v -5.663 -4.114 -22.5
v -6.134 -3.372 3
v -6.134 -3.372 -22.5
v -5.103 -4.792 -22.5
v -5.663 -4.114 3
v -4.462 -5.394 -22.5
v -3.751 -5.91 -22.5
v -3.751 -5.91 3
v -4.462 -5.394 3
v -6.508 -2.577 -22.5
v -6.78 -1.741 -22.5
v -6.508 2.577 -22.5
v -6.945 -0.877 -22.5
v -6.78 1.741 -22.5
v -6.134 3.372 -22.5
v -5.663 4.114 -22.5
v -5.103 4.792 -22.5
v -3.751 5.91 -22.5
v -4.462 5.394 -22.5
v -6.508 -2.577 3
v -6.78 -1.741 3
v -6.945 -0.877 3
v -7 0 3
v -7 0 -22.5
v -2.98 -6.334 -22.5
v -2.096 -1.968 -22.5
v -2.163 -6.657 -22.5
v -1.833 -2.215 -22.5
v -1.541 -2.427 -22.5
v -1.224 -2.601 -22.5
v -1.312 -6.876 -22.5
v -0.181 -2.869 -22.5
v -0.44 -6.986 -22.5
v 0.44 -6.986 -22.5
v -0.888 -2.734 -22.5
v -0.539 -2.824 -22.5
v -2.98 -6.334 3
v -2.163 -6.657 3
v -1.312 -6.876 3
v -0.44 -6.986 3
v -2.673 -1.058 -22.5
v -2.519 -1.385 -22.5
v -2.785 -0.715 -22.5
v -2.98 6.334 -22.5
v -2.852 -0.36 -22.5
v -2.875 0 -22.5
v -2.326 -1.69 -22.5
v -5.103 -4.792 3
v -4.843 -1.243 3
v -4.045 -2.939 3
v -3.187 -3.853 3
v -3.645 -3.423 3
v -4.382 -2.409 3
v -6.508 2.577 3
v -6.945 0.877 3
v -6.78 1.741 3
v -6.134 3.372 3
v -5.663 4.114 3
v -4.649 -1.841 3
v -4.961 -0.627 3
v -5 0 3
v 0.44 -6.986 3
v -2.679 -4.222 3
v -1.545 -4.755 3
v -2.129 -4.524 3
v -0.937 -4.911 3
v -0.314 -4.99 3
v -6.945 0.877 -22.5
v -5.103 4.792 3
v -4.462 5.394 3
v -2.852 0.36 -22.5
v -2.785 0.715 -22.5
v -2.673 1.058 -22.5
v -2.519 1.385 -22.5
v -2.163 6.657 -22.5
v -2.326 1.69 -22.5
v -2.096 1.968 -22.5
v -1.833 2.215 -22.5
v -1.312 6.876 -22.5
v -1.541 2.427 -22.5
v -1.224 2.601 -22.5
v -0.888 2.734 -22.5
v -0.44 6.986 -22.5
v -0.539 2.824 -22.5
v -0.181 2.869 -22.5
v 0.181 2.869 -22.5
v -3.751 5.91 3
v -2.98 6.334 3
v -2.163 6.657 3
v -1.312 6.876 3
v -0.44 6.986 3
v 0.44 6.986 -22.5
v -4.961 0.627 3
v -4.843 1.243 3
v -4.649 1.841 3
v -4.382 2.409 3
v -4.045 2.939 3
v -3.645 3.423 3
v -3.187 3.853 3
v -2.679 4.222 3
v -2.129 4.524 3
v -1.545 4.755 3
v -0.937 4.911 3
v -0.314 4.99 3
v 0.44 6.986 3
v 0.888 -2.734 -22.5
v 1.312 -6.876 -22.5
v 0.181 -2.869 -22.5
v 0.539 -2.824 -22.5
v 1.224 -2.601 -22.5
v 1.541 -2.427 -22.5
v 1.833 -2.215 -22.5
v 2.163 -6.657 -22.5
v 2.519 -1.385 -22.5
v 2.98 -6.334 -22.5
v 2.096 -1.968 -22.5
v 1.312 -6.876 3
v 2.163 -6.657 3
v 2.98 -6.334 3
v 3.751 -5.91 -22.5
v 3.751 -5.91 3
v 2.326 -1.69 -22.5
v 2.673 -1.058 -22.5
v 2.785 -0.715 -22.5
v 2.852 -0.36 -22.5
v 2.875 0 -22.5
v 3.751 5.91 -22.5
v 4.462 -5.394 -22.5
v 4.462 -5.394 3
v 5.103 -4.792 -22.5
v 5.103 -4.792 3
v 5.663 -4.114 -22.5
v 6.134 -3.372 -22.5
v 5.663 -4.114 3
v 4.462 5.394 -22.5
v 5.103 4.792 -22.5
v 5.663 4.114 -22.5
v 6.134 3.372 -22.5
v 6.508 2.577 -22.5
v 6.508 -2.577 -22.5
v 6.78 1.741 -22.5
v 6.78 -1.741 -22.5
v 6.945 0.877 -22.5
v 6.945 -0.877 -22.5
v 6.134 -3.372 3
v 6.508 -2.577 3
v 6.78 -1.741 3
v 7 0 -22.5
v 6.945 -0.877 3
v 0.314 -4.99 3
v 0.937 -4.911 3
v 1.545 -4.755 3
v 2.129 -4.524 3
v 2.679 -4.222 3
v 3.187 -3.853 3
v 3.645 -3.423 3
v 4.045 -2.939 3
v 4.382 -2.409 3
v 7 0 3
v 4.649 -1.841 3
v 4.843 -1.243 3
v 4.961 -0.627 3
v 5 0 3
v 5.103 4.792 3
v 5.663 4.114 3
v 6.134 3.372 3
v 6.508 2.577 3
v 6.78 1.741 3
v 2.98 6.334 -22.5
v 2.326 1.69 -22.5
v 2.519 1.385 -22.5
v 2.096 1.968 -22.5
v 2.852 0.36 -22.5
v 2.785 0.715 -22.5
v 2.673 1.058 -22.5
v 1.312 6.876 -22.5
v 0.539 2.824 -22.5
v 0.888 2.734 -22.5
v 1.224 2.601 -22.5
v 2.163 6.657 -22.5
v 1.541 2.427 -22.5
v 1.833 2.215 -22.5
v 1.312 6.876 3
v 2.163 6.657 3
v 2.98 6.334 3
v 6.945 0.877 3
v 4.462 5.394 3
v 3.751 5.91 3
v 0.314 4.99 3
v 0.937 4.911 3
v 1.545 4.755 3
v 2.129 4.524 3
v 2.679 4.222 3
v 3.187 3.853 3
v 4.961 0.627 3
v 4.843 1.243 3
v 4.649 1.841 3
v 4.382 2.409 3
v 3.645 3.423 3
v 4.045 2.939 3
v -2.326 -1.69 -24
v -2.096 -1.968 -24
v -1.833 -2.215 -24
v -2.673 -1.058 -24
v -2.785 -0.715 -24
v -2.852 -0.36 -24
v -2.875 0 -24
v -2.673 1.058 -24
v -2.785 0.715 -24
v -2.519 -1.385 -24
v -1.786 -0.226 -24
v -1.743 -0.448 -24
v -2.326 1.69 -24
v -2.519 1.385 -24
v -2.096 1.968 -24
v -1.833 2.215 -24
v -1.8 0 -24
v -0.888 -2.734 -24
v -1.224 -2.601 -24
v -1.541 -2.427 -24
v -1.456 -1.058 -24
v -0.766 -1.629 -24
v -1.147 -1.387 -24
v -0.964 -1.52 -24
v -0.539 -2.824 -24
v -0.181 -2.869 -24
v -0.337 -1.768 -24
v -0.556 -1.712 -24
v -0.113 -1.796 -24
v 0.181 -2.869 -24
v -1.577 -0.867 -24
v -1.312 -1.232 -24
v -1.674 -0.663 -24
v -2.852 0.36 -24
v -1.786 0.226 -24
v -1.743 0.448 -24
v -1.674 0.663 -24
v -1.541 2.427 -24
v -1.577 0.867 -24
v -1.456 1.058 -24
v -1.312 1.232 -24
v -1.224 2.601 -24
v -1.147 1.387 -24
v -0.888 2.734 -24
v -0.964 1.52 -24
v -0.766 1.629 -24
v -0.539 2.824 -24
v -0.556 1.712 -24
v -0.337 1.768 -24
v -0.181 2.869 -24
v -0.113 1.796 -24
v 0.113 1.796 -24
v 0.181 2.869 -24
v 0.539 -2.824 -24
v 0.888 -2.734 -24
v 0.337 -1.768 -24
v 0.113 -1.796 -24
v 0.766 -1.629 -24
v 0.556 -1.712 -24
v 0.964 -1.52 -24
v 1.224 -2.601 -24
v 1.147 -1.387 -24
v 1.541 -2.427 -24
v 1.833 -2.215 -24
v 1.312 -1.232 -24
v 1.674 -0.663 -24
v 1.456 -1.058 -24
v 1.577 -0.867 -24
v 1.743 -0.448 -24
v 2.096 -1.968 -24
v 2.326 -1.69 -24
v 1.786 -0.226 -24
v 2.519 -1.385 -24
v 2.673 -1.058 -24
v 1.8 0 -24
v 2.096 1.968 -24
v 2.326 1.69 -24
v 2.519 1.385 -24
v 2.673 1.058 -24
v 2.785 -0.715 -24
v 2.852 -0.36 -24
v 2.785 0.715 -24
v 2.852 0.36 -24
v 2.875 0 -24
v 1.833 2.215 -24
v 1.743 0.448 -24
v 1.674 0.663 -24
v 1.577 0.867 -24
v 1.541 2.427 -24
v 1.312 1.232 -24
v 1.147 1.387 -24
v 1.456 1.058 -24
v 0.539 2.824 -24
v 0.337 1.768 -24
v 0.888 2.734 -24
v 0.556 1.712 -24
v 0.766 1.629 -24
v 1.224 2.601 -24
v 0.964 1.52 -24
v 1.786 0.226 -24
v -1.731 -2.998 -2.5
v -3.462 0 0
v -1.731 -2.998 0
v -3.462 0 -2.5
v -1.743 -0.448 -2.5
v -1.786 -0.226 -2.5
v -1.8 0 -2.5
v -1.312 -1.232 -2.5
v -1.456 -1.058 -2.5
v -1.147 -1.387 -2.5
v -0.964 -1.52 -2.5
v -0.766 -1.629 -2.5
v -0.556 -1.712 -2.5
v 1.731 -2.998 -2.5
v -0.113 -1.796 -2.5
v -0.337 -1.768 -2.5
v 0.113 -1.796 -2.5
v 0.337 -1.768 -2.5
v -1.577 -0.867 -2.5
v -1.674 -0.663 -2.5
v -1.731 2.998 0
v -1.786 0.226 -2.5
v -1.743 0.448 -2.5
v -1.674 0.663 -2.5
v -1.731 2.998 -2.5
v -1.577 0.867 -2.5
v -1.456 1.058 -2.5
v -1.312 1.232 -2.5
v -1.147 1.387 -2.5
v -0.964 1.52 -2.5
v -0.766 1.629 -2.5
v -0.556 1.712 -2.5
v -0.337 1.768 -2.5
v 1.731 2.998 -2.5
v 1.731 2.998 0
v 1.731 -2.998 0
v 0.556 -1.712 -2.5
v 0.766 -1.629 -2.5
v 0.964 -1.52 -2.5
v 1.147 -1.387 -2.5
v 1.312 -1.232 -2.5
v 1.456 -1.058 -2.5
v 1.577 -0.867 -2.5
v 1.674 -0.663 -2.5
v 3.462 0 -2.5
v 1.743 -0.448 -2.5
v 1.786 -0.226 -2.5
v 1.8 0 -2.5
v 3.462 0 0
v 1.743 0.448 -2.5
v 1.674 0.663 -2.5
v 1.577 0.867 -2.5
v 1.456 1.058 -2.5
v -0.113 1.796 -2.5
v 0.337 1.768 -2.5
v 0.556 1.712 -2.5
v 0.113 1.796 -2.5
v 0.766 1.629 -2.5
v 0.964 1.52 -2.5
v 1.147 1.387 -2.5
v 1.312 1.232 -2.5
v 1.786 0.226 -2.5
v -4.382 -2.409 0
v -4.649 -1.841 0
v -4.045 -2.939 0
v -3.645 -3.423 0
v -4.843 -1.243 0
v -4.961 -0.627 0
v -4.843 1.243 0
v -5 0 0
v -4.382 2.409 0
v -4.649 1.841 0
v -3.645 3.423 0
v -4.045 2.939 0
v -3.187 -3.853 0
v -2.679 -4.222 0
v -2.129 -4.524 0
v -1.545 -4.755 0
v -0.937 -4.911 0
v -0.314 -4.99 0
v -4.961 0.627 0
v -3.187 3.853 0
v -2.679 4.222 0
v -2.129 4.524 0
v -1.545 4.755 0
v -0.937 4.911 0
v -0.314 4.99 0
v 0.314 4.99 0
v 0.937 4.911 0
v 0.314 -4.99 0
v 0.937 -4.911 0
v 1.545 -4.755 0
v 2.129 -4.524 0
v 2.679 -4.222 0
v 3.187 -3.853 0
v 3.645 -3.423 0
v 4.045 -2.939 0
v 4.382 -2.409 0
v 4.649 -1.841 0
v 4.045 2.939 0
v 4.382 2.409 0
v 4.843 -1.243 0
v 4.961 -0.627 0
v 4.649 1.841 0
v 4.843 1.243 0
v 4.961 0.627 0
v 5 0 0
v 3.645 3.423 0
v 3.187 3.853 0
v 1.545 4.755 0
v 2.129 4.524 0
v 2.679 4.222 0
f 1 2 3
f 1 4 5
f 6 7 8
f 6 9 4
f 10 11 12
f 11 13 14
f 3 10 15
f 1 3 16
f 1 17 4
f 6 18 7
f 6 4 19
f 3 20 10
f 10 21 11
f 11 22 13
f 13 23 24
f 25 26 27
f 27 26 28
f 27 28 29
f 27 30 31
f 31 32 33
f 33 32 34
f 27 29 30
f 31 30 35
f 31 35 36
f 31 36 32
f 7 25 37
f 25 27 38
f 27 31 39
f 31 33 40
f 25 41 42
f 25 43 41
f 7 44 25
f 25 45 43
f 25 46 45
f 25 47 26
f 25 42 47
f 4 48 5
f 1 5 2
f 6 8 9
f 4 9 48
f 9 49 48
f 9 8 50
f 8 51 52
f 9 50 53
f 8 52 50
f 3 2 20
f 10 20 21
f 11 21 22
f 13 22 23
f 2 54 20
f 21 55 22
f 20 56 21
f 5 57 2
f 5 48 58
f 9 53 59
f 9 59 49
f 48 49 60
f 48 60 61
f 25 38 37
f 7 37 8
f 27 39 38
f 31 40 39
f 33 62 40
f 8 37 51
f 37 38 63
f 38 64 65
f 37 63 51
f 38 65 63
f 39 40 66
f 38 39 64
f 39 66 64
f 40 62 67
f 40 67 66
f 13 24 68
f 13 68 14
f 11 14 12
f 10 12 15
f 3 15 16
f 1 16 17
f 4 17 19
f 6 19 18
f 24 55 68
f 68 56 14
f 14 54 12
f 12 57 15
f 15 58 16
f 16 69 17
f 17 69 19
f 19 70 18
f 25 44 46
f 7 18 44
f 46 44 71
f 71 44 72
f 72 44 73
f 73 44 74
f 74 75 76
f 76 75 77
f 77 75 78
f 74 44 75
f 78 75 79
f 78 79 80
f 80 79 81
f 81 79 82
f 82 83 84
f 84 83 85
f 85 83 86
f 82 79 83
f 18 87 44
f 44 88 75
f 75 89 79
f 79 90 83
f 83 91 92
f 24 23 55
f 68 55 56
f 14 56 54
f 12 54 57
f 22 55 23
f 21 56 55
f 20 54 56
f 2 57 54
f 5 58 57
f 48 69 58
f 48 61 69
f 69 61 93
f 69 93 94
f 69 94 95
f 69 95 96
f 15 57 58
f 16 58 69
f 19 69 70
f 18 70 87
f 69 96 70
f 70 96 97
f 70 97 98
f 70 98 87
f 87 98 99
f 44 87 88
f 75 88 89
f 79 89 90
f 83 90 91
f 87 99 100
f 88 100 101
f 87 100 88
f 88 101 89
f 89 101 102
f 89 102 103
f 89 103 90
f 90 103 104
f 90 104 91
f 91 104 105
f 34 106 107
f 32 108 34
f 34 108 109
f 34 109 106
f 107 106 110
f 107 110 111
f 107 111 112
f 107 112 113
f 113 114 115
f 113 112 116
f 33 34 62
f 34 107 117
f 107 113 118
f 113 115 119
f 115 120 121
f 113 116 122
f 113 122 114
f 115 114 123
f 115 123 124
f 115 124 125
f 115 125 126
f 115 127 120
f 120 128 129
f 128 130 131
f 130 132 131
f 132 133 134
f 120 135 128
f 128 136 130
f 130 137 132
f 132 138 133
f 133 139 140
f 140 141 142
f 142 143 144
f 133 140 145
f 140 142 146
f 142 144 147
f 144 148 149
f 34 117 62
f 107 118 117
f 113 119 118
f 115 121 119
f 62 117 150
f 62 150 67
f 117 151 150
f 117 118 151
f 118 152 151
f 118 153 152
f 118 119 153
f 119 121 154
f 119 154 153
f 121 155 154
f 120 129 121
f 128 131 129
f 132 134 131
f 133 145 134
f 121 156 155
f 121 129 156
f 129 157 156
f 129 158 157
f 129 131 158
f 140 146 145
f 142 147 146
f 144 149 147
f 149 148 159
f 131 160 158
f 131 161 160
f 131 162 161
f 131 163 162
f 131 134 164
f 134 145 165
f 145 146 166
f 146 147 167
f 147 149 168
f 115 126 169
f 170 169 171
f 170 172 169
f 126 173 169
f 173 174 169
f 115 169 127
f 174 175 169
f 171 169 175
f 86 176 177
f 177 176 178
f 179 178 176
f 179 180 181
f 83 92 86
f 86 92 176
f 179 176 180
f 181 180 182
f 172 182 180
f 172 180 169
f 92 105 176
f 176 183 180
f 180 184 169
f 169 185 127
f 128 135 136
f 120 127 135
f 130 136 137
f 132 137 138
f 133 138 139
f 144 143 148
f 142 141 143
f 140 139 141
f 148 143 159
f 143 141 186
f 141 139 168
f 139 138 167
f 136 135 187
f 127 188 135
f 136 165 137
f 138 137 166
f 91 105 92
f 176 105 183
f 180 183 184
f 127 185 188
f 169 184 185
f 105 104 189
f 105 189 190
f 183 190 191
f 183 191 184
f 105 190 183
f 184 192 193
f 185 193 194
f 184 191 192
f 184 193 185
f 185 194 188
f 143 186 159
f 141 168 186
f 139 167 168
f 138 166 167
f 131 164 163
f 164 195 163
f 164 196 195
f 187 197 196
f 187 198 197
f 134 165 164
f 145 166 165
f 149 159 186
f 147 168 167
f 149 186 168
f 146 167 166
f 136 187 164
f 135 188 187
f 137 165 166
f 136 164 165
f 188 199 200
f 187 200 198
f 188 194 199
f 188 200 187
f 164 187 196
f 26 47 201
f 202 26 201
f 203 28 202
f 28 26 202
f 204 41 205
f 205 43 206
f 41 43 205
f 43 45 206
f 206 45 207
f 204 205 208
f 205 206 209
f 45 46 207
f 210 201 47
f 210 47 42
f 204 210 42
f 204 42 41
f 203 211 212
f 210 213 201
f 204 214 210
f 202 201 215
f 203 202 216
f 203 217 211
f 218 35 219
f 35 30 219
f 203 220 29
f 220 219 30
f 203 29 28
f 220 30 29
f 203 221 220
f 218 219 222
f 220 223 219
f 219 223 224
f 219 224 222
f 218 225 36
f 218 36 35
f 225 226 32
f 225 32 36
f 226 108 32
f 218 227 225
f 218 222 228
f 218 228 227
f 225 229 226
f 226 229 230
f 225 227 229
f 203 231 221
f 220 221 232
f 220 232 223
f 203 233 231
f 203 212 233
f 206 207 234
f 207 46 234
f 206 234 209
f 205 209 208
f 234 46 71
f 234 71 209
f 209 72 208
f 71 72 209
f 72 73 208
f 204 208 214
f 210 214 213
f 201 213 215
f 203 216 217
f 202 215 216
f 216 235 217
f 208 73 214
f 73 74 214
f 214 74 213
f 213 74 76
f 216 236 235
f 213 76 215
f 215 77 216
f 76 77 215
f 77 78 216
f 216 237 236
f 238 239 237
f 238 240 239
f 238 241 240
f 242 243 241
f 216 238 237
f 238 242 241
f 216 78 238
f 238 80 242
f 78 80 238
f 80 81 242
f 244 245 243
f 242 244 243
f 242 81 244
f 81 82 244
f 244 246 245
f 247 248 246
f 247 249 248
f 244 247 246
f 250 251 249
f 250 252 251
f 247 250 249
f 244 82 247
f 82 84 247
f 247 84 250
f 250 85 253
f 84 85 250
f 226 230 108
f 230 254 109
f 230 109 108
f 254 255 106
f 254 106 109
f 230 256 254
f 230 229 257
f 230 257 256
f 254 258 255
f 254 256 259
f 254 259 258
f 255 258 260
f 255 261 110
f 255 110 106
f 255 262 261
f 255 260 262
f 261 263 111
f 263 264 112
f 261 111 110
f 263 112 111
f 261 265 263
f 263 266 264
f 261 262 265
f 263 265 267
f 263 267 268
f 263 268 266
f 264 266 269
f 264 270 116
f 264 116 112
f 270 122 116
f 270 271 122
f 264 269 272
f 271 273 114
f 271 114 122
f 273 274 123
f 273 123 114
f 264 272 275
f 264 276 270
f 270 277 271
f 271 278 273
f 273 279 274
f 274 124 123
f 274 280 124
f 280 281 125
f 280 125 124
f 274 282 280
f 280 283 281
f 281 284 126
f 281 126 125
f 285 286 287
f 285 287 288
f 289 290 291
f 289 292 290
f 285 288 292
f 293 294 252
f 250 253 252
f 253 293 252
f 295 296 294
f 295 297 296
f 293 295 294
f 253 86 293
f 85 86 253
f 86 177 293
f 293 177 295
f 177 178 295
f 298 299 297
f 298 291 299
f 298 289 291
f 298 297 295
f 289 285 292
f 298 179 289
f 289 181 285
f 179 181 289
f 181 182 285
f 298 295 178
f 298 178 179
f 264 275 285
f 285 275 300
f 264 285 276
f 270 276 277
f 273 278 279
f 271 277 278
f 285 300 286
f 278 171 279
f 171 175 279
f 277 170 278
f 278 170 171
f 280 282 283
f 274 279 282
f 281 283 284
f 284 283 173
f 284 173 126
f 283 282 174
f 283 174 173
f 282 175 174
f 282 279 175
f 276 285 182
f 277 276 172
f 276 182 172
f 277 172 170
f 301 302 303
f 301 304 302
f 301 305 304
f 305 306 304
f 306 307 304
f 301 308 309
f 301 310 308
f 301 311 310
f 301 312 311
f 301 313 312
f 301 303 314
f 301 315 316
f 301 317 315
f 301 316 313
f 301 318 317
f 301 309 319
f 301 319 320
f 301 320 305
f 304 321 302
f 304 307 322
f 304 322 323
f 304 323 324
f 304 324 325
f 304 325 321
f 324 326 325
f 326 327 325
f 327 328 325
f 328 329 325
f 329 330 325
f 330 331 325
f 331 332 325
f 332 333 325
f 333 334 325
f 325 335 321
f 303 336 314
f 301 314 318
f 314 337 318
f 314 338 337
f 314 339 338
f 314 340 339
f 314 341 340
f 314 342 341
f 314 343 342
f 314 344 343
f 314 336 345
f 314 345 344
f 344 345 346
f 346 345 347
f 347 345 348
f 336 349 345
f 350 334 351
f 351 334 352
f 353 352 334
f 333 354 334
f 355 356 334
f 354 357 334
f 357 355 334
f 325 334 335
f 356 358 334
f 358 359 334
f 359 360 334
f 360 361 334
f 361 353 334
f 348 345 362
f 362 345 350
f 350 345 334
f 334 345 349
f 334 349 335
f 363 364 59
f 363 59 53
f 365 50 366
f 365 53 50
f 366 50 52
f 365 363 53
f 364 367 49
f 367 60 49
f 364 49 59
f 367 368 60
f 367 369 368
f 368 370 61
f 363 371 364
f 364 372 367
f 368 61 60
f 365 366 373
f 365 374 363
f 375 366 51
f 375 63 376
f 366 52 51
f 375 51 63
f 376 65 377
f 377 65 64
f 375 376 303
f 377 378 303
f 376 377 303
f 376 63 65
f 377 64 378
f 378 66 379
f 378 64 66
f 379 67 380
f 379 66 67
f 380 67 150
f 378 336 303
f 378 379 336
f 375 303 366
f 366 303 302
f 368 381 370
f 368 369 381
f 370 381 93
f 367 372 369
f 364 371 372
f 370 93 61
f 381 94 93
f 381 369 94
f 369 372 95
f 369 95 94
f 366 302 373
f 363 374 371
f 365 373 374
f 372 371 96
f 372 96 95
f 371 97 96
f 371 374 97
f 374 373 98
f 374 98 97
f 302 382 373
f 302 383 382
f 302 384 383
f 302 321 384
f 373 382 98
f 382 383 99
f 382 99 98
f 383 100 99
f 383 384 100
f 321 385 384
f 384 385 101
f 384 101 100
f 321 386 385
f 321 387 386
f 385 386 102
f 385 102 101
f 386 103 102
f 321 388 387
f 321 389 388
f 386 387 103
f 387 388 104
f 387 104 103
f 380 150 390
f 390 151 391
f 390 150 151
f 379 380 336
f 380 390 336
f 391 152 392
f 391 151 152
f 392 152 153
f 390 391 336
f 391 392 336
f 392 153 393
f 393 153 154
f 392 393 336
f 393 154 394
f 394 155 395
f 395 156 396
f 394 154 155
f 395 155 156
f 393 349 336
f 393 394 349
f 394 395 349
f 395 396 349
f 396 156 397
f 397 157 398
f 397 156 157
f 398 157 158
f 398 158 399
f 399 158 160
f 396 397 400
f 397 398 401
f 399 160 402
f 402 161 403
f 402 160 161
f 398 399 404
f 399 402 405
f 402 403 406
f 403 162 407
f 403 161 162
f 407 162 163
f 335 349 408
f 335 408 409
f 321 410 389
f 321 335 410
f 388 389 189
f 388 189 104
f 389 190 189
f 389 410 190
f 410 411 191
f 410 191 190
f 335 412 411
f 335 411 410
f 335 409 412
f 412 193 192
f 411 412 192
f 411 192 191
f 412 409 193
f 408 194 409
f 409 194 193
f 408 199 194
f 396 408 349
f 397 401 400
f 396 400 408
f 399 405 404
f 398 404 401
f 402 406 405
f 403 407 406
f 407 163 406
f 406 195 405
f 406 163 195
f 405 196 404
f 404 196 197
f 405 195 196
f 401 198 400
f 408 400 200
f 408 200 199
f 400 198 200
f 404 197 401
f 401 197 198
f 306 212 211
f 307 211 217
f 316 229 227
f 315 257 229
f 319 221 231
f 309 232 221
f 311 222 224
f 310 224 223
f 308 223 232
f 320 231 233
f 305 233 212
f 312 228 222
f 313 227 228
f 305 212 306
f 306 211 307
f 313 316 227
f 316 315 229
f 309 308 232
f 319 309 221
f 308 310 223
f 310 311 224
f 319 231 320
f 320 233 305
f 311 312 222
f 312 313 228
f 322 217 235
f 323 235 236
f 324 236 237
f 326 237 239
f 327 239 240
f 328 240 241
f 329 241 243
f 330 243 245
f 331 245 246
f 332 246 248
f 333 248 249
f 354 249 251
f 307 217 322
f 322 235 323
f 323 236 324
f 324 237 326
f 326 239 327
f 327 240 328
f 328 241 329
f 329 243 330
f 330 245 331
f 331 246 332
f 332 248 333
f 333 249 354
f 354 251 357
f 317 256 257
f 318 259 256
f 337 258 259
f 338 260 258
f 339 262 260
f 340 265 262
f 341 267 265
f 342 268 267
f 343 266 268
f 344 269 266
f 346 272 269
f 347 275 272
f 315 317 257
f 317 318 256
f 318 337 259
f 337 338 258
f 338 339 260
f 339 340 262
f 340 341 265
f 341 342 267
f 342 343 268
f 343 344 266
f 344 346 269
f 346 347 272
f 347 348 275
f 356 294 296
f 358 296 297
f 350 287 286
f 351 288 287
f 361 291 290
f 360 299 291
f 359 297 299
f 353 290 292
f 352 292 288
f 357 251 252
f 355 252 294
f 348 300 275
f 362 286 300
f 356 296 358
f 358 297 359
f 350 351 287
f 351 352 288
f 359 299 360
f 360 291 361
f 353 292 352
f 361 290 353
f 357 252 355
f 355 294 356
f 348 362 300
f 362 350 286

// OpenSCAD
$fn = 50;

difference() {
	union() {
		translate(v = [0, 0, -22.5]) {
			cylinder(h = 25.5, r = 7.0);
		}
		#translate(v = [0, 0, -24.0]) {
			cylinder(h = 24, r = 2.875);
		}
	}
	union() {
		translate(v = [0, 0, 0]) {
			rotate(a = [0, 0, 0]) {
				difference() {
					union() {
						translate(v = [0, 0, -2.5]) {
							linear_extrude(height = 2.5) {
								polygon(points = [[3.4619999999999997, 0.0], [1.7310000000000003, 2.9981799479017264], [-1.7309999999999992, 2.9981799479017264], [-3.4619999999999997, 4.2397272186481365e-16], [-1.7310000000000014, -2.998179947901726], [1.7309999999999977, -2.9981799479017277]]);
							}
						}
					}
					union();
				}
			}
		}
		#cylinder(h = 3, r = 5.0);
		#translate(v = [0, 0, -100.0]) {
			cylinder(h = 200, r = 1.8);
		}
	}
}
